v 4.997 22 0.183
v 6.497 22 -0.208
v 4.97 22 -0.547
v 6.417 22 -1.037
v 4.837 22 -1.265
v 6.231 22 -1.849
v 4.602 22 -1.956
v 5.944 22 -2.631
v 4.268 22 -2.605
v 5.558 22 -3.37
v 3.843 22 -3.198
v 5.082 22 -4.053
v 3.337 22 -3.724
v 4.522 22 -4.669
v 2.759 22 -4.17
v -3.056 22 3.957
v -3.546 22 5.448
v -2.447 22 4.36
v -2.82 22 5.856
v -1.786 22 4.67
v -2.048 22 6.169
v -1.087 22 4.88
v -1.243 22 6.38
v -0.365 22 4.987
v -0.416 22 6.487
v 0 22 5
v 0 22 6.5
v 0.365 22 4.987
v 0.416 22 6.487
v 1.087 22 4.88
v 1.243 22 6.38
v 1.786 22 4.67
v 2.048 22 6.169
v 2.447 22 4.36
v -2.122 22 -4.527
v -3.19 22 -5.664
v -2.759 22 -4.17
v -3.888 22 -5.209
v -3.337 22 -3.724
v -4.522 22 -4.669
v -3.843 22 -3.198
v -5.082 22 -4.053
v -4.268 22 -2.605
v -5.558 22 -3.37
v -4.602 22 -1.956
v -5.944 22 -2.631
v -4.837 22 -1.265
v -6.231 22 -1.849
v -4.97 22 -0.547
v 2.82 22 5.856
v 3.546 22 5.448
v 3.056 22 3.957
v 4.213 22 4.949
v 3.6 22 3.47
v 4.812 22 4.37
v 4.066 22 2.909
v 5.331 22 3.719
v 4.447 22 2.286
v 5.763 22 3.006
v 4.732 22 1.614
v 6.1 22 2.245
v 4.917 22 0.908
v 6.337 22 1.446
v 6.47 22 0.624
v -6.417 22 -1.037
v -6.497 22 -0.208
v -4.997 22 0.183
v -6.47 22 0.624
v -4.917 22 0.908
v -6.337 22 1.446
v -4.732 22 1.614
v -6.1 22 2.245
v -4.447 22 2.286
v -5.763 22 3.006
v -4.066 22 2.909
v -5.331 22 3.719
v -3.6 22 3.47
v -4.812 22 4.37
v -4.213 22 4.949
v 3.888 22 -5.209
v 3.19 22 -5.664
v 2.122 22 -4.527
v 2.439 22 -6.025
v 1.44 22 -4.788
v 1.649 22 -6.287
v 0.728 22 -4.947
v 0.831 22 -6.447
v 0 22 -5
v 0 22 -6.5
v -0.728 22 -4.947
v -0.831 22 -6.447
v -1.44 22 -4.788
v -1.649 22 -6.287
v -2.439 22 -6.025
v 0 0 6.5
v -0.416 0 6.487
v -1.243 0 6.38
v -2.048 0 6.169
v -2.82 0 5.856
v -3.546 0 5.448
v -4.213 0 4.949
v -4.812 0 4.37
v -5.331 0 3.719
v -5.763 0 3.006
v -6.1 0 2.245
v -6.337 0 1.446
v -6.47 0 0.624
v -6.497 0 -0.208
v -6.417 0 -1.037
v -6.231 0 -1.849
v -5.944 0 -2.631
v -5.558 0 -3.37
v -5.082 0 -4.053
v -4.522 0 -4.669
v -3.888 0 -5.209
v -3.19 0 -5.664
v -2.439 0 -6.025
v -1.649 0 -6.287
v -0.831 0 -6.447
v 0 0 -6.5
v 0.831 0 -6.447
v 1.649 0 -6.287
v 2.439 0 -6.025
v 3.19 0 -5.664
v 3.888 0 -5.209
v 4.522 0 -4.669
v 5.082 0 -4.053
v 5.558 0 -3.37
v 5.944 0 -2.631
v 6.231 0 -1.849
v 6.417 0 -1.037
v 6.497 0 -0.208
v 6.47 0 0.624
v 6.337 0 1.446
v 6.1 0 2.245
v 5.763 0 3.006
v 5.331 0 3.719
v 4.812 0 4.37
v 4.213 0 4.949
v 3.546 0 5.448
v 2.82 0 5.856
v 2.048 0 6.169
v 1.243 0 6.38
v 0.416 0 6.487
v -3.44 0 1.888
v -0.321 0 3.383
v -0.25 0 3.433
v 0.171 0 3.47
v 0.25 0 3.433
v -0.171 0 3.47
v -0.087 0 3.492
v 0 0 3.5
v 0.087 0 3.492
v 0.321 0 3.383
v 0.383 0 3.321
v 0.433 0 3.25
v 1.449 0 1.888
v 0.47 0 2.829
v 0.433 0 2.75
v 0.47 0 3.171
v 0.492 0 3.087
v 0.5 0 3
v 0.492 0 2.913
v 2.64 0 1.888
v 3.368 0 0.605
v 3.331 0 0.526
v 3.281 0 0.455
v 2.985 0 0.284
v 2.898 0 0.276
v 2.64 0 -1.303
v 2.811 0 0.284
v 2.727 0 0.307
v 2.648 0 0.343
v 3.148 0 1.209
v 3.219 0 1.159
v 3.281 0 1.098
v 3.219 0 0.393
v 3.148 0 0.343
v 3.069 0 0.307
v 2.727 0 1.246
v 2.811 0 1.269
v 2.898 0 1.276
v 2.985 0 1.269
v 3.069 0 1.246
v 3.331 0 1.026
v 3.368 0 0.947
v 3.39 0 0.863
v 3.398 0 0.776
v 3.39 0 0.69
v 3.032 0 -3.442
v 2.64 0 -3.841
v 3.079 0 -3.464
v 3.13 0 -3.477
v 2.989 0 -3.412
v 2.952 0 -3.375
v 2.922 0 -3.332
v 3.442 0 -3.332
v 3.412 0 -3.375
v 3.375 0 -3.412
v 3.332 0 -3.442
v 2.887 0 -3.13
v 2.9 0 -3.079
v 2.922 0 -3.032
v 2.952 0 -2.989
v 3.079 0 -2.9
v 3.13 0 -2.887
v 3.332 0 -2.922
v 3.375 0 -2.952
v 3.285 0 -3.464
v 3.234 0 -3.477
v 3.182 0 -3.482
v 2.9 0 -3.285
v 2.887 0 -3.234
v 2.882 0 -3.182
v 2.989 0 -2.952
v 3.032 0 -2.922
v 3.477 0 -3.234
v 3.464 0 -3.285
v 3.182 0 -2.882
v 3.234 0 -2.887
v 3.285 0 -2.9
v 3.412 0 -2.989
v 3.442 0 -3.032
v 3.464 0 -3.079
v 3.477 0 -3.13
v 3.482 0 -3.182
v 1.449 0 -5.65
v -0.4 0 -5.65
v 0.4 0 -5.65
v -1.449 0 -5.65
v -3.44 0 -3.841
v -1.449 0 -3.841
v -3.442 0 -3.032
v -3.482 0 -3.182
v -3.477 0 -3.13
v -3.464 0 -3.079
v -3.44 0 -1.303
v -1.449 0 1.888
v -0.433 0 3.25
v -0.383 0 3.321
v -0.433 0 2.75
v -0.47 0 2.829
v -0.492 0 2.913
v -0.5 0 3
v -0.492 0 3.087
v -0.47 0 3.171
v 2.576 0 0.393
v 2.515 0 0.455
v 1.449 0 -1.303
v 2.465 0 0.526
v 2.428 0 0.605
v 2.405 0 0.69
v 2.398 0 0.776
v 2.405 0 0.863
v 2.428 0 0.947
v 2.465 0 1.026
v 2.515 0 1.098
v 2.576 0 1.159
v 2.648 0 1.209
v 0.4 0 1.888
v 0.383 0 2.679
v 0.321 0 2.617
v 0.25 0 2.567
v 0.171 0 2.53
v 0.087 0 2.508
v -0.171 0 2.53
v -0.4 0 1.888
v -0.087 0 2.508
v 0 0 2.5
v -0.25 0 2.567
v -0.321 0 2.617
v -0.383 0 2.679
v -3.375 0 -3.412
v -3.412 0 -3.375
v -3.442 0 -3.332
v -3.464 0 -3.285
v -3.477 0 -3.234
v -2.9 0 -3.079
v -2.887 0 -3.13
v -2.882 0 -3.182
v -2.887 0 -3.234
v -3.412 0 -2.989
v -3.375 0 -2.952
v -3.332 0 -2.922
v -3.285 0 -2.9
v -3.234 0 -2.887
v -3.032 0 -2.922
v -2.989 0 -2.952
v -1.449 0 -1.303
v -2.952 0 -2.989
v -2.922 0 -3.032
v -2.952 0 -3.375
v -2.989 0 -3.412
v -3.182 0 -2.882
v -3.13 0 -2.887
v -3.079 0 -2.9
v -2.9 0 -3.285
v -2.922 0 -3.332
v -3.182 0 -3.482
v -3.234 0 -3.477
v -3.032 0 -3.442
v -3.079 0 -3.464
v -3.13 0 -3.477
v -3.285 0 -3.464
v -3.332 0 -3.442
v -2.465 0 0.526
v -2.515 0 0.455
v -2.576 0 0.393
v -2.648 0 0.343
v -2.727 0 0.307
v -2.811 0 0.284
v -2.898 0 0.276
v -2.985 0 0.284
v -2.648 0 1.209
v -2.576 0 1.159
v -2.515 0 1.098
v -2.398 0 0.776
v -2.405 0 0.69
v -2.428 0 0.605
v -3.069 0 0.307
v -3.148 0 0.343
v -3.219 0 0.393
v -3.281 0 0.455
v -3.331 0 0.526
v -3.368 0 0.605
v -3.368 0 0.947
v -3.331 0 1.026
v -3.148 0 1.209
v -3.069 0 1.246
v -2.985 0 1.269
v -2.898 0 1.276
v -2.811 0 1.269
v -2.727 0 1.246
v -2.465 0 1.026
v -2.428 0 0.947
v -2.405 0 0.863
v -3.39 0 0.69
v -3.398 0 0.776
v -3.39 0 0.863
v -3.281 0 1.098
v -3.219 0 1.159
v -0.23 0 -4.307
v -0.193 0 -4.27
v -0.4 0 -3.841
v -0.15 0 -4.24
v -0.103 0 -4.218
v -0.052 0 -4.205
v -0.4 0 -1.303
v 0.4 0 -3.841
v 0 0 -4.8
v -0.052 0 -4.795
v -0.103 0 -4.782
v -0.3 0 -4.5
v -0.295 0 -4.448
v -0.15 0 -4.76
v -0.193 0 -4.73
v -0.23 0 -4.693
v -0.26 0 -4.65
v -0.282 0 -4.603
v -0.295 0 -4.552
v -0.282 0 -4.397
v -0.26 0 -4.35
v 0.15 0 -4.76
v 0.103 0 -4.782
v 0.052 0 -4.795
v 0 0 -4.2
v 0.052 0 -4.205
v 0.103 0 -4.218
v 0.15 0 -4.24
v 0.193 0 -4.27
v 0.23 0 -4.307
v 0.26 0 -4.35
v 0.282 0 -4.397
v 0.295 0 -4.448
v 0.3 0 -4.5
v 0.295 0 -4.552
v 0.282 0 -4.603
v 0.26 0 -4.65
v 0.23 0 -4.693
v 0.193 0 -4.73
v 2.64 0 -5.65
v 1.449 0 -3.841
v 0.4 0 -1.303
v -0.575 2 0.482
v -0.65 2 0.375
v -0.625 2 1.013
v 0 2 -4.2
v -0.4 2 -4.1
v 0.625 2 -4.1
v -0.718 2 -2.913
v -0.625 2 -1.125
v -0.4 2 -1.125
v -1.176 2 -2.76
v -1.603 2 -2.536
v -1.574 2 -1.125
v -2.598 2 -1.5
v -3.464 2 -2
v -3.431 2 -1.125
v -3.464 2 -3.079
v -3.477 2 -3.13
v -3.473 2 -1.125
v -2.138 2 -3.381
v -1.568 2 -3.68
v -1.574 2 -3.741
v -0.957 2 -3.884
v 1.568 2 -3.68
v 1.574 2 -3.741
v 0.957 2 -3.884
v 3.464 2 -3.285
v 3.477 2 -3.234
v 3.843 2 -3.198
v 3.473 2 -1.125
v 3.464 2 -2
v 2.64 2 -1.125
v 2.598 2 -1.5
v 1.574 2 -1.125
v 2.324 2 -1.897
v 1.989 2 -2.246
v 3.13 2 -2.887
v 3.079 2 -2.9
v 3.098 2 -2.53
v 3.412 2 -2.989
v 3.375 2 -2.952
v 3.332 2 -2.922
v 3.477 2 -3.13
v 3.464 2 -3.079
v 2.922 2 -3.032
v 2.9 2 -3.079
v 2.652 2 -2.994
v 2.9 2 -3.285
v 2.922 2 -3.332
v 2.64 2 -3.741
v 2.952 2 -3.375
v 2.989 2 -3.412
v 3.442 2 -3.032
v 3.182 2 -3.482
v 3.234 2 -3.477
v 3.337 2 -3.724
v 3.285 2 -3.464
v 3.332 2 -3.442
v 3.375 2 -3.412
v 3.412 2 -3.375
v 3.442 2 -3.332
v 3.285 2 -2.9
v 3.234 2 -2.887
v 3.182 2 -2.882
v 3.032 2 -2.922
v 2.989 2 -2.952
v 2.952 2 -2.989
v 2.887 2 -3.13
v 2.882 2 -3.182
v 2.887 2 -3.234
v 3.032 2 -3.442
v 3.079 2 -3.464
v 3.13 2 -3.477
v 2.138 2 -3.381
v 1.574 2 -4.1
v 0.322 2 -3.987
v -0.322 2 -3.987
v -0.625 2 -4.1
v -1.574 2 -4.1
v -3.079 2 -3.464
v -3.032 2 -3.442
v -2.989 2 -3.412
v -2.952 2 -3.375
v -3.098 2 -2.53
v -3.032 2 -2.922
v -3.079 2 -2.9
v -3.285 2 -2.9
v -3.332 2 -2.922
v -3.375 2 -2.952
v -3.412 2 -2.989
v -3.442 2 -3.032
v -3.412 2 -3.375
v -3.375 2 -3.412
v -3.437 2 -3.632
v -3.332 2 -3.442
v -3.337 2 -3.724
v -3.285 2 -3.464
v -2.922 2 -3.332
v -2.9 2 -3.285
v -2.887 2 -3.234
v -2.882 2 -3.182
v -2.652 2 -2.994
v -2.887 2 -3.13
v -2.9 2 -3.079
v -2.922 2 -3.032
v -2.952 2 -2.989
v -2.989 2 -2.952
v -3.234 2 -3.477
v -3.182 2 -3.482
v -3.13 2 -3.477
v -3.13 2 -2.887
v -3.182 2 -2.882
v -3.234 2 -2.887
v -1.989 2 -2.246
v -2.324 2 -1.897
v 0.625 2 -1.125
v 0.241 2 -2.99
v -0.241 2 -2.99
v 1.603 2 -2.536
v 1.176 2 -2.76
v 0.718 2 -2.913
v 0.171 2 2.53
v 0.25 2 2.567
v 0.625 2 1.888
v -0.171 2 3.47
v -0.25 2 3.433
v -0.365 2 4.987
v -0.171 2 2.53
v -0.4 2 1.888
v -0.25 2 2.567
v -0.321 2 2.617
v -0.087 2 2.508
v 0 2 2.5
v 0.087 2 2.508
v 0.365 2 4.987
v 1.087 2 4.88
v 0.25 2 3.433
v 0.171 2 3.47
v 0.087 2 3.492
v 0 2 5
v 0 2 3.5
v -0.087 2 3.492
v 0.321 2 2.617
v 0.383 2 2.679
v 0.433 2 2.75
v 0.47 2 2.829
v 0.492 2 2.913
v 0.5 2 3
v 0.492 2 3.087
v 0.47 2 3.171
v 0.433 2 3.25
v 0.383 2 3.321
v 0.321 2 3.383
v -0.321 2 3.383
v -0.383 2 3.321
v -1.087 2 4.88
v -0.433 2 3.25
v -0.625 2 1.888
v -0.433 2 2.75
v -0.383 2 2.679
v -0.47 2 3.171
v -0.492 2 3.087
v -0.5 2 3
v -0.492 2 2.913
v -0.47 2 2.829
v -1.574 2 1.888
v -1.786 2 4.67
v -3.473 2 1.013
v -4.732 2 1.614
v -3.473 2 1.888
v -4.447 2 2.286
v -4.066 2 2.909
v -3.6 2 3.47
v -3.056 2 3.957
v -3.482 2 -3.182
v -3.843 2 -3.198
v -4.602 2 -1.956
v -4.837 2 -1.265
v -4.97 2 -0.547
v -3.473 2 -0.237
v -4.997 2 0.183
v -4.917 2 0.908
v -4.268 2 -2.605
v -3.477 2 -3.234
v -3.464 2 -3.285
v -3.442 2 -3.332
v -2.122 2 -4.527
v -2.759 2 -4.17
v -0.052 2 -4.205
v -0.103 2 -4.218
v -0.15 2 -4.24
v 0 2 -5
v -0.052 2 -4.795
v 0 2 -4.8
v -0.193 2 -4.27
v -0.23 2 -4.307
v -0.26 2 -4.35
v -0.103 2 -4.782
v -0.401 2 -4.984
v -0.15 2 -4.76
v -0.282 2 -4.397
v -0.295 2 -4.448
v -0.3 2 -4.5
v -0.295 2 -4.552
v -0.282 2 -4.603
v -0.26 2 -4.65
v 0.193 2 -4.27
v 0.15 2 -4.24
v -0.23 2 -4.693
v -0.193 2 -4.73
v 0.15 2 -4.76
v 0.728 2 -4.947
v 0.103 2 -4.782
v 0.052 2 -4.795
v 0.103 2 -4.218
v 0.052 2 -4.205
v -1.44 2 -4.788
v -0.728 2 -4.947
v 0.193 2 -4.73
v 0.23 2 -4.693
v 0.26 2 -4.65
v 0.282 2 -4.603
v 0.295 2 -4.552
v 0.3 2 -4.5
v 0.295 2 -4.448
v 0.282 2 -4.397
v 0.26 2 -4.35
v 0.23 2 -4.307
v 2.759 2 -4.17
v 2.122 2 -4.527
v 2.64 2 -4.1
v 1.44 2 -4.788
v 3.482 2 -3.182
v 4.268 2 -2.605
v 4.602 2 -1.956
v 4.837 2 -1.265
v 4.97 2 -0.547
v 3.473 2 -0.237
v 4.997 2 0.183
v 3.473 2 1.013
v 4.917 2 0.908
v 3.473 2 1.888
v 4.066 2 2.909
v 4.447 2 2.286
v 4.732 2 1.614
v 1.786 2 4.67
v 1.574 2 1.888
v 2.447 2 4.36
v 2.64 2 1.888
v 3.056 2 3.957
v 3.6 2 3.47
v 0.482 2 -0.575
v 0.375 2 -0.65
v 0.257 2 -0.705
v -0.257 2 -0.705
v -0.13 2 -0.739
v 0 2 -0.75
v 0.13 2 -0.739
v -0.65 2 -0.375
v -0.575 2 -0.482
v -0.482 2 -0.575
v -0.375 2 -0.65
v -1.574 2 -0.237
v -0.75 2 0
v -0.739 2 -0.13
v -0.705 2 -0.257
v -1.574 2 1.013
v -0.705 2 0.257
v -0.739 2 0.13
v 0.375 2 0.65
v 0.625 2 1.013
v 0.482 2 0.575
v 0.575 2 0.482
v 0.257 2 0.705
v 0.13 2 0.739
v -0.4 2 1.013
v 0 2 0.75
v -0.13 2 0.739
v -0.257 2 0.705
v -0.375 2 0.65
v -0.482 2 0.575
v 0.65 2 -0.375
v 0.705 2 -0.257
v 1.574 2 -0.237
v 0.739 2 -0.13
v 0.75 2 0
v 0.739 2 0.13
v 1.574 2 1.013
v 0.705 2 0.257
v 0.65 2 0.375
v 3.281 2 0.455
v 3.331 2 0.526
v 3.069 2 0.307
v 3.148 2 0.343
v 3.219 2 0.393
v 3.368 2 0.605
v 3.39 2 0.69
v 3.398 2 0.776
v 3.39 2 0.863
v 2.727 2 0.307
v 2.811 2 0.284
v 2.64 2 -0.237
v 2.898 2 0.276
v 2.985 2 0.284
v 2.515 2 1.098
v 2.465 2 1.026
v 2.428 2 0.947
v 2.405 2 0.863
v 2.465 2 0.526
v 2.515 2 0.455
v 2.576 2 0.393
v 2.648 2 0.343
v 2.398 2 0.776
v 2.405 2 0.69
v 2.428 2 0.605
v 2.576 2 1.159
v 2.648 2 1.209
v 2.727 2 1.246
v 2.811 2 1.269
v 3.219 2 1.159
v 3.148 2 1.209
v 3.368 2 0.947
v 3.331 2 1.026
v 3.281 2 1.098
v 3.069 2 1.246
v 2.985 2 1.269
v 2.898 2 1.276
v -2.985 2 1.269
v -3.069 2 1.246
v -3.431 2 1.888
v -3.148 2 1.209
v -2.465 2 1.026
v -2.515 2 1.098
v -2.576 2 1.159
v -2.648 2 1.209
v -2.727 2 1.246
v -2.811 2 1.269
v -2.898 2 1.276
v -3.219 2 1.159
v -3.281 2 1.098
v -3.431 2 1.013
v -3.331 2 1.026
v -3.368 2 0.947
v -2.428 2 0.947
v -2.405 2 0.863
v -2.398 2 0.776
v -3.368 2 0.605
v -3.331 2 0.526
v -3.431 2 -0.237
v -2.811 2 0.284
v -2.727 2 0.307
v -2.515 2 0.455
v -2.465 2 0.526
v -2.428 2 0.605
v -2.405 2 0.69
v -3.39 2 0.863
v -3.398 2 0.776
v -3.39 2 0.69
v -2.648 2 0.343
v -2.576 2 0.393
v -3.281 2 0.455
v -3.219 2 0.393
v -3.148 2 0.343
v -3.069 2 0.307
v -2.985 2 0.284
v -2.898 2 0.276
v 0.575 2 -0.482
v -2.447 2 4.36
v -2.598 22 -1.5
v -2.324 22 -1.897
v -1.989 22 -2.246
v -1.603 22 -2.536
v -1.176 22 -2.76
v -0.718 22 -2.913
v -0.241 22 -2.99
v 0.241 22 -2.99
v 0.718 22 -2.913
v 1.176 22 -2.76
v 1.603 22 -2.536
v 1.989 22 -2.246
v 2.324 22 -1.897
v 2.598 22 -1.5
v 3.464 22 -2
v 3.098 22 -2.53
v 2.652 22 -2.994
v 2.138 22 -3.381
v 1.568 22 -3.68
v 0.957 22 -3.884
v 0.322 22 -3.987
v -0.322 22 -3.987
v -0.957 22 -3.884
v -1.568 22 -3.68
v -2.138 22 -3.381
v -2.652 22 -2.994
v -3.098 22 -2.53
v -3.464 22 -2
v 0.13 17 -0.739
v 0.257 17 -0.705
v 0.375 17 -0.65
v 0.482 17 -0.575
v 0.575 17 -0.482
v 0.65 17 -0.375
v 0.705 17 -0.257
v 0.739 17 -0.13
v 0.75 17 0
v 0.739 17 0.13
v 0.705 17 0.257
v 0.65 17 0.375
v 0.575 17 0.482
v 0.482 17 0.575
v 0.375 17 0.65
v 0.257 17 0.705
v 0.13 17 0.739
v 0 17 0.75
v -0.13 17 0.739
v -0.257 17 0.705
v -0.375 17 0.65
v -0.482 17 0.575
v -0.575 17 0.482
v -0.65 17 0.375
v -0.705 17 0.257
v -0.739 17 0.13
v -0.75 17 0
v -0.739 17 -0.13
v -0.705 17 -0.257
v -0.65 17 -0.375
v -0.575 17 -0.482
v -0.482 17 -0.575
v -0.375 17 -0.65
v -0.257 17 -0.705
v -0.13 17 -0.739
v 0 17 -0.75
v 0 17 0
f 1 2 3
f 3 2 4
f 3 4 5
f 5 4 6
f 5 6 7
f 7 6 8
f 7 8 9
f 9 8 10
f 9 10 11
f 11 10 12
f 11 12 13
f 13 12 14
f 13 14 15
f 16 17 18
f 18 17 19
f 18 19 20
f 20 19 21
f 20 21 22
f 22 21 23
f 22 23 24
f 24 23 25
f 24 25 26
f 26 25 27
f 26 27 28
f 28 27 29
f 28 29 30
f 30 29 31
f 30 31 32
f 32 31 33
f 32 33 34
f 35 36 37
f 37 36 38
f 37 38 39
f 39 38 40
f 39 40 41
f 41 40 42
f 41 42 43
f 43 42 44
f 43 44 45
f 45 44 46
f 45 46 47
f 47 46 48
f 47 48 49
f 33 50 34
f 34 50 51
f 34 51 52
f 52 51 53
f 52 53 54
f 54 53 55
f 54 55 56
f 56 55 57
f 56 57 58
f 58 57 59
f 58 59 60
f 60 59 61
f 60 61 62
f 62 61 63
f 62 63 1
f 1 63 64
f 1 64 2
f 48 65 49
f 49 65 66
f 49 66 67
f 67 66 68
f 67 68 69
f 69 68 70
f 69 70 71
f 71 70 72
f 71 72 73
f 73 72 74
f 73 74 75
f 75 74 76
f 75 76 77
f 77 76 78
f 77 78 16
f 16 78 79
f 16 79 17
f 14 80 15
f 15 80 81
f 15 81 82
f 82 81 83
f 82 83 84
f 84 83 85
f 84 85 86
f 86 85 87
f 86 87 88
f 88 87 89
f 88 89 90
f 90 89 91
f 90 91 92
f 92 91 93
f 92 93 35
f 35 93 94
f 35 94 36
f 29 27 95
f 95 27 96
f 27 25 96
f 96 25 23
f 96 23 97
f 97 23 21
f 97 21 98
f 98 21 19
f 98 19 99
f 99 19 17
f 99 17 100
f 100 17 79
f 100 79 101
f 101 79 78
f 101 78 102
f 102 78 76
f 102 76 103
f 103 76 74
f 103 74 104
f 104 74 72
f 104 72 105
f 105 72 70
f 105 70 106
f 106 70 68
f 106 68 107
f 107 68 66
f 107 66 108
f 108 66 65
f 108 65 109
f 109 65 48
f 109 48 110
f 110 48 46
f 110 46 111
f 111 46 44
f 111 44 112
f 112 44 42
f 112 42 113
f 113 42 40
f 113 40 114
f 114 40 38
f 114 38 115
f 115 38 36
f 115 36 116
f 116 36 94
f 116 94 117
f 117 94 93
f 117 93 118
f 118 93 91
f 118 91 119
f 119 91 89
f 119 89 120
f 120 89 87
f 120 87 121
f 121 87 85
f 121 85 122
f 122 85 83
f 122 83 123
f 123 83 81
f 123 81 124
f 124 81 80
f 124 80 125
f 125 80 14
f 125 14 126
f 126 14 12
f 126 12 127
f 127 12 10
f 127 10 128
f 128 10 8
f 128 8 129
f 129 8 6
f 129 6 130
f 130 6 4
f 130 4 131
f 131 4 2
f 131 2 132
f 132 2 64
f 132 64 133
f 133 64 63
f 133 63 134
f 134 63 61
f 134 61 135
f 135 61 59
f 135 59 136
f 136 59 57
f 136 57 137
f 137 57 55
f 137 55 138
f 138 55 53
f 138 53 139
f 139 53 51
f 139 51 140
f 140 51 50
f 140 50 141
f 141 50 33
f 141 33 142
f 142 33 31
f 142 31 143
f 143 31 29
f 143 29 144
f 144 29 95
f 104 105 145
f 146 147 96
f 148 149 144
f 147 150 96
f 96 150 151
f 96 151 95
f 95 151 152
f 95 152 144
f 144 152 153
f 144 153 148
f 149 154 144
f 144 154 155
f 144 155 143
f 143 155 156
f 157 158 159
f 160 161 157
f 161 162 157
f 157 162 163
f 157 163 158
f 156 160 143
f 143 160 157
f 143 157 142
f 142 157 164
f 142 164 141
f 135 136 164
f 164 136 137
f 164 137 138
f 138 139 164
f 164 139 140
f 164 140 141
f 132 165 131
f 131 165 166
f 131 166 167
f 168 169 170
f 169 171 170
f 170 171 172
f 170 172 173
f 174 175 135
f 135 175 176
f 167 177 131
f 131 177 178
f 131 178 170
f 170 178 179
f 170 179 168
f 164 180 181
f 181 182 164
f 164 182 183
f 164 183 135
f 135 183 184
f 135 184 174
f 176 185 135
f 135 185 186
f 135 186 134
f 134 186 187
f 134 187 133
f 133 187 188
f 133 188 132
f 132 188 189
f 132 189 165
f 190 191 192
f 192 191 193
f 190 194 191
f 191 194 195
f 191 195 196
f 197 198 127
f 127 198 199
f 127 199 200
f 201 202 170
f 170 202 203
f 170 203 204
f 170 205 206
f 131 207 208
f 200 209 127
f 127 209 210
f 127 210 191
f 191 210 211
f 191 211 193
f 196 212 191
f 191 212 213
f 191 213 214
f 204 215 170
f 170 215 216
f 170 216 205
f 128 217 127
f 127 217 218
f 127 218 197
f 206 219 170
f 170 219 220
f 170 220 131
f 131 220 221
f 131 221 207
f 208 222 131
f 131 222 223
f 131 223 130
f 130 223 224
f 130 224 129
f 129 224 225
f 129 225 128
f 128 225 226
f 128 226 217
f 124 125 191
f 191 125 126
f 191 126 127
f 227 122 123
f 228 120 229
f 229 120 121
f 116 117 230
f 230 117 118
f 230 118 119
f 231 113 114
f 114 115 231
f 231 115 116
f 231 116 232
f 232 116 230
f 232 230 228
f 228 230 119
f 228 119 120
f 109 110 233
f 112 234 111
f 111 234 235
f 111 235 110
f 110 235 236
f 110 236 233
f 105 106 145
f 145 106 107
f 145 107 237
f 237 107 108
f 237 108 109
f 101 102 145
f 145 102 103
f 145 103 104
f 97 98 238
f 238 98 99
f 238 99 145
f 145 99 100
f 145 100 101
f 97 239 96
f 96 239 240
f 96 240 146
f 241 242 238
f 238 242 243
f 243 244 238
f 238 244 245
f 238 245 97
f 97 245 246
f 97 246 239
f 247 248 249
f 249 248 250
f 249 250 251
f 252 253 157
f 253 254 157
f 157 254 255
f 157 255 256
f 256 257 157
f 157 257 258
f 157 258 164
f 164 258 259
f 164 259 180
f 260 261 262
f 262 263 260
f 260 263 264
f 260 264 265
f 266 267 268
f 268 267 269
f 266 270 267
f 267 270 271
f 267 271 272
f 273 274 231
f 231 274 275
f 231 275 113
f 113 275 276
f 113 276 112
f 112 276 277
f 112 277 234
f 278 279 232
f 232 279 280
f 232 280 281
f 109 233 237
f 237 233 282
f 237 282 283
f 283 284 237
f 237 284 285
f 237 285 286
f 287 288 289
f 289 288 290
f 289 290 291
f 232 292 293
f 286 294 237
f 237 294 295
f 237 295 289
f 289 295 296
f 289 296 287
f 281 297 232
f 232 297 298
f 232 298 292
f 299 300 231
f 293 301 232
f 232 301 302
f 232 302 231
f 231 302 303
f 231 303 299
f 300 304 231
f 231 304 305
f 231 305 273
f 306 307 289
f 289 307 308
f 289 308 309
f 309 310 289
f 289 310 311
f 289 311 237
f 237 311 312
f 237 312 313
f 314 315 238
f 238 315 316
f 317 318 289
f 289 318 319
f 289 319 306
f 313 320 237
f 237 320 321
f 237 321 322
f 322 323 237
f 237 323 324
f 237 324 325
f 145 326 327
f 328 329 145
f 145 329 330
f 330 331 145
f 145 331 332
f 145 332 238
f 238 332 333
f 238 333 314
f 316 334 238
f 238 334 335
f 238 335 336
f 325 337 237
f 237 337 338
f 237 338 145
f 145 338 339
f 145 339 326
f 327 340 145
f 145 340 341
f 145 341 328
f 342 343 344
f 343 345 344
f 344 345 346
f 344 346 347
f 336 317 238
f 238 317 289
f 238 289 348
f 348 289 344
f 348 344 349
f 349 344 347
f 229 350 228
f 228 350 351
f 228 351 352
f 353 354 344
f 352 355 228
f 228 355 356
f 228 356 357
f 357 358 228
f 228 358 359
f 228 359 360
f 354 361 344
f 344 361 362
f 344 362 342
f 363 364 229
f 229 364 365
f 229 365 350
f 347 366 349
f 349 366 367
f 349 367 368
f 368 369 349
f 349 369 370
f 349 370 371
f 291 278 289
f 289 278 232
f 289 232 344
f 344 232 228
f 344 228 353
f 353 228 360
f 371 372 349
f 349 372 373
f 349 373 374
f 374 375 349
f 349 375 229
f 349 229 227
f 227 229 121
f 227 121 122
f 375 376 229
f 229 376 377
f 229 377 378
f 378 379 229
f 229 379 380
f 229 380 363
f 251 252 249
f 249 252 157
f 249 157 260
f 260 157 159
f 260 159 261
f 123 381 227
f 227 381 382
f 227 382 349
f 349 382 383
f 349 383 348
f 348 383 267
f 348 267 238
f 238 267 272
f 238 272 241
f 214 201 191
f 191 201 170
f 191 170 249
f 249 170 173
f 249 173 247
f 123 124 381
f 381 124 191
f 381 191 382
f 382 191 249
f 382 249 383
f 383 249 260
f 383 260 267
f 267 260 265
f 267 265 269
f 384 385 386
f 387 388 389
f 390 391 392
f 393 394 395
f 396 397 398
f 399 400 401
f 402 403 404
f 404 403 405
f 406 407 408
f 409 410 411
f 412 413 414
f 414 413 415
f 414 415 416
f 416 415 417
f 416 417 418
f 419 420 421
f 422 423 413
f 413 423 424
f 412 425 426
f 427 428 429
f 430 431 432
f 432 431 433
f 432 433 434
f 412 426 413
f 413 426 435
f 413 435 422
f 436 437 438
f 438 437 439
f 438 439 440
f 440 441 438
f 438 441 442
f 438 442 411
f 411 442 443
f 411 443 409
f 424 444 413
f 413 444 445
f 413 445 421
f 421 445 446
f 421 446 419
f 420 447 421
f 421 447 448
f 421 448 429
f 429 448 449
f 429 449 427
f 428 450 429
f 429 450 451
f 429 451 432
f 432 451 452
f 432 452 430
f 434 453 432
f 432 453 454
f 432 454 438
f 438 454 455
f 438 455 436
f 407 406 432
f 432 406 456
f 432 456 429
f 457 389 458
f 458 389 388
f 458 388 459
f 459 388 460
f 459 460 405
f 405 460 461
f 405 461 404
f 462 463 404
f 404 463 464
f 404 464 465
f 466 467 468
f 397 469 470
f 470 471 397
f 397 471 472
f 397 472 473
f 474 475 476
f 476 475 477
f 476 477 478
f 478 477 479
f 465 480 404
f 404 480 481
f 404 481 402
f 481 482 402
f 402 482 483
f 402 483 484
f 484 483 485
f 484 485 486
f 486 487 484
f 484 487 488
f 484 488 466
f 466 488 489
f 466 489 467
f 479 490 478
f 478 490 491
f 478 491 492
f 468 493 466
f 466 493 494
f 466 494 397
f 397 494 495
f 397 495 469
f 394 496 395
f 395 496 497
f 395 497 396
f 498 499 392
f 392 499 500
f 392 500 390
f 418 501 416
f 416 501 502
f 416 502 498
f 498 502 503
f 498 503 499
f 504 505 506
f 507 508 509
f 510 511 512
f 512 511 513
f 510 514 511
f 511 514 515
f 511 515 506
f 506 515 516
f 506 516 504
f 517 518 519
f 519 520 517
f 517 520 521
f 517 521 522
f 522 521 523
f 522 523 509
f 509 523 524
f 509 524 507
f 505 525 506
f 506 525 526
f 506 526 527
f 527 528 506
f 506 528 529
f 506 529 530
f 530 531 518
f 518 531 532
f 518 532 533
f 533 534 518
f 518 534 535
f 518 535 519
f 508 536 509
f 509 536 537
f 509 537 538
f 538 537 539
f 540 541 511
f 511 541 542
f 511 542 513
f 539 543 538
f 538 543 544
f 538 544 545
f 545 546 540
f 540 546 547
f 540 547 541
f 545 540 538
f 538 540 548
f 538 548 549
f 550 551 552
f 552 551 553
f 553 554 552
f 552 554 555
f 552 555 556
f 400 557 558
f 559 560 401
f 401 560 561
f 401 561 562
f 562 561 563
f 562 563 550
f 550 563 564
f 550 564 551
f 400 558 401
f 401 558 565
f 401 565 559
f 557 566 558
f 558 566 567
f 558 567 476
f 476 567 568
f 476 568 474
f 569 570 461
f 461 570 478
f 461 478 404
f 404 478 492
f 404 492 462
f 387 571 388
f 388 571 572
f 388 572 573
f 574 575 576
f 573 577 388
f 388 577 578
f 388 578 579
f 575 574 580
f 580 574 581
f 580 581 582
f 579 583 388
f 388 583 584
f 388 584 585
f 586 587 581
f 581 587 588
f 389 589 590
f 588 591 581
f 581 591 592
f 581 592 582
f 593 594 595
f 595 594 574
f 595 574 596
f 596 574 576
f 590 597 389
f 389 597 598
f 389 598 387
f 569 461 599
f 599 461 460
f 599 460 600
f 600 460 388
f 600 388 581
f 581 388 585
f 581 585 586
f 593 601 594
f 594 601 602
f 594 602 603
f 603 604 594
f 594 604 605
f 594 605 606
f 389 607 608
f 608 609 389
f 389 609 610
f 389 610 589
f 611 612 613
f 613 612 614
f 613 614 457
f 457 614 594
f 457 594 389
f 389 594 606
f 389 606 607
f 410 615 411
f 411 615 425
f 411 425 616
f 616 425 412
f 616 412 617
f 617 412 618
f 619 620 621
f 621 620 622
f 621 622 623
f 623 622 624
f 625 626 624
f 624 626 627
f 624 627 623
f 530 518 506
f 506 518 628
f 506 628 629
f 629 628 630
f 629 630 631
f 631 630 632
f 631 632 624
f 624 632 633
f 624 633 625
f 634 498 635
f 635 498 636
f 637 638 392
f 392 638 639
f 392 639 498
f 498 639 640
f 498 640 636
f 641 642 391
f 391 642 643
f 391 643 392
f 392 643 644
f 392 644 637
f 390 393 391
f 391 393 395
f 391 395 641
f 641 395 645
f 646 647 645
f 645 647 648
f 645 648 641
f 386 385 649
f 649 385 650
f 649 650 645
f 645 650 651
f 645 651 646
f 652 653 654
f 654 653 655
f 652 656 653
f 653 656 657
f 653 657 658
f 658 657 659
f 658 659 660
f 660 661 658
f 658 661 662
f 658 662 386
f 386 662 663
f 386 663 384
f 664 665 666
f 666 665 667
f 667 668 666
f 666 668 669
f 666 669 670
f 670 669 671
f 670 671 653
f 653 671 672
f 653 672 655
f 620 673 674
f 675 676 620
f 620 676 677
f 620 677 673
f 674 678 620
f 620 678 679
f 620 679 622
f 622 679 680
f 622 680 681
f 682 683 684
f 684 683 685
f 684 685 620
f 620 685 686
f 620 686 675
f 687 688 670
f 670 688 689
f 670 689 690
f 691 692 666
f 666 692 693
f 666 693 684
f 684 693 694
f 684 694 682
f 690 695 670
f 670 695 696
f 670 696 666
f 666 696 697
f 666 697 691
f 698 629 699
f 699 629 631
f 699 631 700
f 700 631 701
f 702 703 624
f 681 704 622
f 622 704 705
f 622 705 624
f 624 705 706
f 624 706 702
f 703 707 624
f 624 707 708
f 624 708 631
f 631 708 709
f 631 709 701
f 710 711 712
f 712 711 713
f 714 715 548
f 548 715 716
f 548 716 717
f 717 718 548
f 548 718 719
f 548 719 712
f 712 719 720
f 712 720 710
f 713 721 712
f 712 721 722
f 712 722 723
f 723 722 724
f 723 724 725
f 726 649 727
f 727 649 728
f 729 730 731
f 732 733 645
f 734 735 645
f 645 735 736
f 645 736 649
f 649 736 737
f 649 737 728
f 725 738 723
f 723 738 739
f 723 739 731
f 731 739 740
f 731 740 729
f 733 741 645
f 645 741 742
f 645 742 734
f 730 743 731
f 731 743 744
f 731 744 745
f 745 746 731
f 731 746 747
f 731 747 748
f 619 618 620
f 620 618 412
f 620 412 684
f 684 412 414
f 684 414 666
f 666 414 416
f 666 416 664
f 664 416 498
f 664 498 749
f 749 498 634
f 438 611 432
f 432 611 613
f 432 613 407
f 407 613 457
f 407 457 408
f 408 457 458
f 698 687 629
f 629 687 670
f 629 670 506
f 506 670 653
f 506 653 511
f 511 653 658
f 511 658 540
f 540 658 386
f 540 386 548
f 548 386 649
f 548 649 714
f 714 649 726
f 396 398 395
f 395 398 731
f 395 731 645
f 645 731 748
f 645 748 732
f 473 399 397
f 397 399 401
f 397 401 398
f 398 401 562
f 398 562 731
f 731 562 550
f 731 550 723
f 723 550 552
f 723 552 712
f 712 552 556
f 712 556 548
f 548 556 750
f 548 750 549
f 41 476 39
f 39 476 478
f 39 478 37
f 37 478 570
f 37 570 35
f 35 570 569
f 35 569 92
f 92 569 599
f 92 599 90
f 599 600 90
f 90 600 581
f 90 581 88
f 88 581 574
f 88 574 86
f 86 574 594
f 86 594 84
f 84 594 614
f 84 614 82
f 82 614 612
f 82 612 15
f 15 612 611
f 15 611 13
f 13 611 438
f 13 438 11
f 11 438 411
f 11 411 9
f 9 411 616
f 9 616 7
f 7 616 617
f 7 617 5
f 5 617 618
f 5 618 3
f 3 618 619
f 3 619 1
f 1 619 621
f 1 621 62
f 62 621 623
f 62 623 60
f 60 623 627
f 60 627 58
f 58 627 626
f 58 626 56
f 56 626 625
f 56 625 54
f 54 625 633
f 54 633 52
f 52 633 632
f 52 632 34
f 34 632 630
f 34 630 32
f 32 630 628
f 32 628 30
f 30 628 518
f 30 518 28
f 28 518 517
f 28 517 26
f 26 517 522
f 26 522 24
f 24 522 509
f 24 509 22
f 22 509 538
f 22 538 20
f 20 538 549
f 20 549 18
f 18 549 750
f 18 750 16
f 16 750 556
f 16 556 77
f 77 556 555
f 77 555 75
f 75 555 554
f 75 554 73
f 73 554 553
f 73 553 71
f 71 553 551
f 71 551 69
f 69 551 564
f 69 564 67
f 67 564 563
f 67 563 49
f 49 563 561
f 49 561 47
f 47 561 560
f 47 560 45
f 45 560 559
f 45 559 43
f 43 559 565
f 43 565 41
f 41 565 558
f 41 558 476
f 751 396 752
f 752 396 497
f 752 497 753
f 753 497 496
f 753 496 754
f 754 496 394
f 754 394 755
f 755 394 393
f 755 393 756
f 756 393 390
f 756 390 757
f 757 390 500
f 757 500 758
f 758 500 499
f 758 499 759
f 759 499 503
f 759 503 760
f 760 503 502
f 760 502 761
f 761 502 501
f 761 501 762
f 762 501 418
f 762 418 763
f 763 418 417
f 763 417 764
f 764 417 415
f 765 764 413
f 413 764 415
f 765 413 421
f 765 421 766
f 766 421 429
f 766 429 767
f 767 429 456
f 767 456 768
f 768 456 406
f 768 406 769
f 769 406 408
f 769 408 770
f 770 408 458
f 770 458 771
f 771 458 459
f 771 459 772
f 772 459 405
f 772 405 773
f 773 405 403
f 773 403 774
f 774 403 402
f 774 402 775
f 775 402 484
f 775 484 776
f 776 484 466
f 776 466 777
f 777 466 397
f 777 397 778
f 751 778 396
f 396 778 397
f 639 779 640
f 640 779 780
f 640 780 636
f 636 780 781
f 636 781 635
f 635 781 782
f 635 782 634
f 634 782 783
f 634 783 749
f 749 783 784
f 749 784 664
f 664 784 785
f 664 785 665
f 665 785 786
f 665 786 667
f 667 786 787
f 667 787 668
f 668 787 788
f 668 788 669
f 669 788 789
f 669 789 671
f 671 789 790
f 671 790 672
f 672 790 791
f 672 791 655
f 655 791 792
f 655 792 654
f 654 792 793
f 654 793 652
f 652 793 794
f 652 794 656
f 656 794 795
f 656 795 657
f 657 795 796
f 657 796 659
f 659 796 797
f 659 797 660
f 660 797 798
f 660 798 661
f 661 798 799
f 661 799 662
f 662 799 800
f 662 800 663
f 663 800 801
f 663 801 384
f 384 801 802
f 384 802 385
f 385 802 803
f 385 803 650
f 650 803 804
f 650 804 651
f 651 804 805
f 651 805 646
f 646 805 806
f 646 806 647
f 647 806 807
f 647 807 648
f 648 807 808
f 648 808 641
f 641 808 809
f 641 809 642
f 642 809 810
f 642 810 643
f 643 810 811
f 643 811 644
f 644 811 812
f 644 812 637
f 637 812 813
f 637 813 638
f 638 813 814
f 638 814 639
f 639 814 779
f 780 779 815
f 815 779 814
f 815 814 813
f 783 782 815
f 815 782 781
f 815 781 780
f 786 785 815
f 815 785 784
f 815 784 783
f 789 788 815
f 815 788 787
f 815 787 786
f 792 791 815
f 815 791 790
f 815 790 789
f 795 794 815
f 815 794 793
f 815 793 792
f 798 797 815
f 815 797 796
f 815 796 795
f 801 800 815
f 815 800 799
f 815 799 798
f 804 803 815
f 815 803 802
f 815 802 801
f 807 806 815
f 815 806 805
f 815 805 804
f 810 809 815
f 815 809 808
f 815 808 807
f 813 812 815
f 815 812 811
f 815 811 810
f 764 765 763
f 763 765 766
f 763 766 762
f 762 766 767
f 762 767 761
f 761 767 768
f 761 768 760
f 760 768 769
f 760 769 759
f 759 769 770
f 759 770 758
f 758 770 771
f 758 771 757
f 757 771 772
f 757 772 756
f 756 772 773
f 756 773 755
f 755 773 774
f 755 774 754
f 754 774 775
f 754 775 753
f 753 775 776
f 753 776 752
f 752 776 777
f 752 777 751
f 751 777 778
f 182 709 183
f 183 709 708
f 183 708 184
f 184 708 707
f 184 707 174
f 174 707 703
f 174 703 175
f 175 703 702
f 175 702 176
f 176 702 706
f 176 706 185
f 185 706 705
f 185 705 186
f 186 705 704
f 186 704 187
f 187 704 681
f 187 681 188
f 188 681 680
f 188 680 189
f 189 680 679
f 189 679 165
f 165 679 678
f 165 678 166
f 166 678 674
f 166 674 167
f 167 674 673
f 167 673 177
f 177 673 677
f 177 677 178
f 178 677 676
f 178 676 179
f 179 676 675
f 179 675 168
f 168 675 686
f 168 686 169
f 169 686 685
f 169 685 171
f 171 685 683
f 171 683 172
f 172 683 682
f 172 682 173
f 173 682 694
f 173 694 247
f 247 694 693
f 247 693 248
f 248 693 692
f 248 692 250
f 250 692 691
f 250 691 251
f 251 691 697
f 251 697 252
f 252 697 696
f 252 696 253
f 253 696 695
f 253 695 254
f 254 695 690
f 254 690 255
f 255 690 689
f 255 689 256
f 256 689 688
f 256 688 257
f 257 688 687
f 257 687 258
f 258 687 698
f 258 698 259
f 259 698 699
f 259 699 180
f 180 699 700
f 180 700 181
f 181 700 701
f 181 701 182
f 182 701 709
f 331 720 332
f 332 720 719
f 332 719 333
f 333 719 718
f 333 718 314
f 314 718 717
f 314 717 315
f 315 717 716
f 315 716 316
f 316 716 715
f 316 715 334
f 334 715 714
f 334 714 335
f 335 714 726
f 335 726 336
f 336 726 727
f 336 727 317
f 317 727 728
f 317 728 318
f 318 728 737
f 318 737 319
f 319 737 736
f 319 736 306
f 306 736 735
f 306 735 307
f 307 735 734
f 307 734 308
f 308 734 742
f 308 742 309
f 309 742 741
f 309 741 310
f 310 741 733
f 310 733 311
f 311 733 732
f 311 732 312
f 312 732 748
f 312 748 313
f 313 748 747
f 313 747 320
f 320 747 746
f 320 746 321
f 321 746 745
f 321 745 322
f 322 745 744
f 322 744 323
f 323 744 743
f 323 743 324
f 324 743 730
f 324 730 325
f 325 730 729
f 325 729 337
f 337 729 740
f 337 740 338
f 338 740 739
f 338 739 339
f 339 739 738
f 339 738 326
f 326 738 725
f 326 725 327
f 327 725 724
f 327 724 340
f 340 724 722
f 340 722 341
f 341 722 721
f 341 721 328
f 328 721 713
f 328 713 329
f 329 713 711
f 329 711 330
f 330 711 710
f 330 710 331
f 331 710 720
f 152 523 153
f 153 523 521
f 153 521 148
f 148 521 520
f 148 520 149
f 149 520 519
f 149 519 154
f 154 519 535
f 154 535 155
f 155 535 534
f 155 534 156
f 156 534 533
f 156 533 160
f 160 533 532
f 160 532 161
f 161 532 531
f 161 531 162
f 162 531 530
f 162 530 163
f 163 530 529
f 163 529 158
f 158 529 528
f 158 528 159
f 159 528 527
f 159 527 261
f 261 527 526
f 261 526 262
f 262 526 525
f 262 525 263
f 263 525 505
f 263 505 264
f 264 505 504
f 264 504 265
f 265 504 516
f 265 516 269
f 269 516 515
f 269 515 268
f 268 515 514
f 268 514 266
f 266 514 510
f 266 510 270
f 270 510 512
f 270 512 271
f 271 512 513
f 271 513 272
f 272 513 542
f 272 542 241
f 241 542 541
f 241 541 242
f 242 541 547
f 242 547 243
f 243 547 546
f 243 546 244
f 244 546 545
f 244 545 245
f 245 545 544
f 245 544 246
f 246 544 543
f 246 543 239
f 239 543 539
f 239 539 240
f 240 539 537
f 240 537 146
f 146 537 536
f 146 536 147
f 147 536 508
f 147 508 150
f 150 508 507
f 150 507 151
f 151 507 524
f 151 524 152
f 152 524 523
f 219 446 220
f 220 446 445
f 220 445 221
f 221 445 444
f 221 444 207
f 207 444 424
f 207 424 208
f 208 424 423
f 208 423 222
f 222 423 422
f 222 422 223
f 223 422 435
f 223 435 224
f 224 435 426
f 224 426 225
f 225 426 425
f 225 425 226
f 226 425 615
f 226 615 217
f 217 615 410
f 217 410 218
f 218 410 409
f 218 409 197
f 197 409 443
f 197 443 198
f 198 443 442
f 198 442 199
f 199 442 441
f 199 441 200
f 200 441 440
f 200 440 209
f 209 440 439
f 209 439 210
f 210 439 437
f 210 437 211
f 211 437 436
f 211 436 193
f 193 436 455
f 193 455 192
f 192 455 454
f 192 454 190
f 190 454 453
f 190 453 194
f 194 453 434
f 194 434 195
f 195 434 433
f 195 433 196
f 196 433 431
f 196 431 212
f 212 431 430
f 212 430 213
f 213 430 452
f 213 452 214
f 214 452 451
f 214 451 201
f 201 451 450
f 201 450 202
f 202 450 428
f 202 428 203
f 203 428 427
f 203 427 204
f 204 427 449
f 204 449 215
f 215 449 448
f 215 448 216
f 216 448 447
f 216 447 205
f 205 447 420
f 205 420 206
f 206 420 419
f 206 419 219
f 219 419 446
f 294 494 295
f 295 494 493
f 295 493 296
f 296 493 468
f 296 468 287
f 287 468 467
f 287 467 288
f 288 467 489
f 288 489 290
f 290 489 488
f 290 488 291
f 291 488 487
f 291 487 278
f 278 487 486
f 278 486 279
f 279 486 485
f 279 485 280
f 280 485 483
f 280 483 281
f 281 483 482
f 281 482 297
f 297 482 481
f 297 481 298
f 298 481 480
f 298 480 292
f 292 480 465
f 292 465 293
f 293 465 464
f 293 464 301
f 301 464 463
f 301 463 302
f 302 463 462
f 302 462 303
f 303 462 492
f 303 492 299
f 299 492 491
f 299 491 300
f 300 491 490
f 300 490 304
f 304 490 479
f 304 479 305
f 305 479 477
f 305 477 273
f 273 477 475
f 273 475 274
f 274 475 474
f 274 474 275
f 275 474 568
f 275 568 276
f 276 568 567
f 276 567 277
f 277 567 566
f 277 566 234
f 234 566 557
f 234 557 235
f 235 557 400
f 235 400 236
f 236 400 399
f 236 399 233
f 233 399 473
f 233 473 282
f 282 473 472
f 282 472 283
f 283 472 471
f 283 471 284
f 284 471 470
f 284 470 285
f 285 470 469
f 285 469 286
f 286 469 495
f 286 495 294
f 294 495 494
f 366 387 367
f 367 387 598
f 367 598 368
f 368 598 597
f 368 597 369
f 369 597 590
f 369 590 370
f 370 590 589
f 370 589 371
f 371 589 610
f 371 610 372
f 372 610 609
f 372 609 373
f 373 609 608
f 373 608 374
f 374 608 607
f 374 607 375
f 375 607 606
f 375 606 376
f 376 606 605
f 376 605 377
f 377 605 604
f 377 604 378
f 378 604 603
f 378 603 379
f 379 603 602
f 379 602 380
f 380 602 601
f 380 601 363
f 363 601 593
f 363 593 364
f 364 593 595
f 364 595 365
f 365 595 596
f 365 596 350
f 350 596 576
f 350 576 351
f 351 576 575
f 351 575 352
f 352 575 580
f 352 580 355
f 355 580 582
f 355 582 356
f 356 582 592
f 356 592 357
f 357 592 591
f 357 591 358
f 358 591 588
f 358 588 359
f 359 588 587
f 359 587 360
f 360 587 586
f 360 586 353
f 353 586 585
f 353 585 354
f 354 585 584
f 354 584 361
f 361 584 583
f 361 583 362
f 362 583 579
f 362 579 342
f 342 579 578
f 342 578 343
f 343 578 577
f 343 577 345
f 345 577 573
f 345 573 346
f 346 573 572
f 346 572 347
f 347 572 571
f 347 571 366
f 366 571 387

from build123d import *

# Parameters (mm, degrees)
SKETCH1_R           = 6.5
BOSS_EXTRUDE1_DEPTH = 22
CAVITY1_START       = 2
CAVITY1_OUTLINE_R   = 5
CAVITY1_OUTLINE_R_2 = 0.75
CAVITY1_DEPTH       = 20
CAVITY1_START_2     = 17
CAVITY1_2_OUTLINE_R = 0.75
CAVITY1_2_DEPTH     = 5
SKETCH2_R           = 0.5
CUT_EXTRUDE1_DEPTH  = 23.011360703
SKETCH3_R           = 0.3
CUT_EXTRUDE2_DEPTH  = 23.011360703


# Read off the part's stored shape, not the designer's step: Cavity1
with BuildPart() as part:
    # Sketch1 → Boss-Extrude1 (new body)
    with BuildSketch(Plane(origin=(0, 0, 0), x_dir=(1, 0, 0), z_dir=(0, 1, 0))):
        with Locations(Location((0, 0, 0), (0, 0, 270))):
            Circle(SKETCH1_R)
    extrude(amount=BOSS_EXTRUDE1_DEPTH)

    # Cavity1 outline → Cavity1 (cut)
    with BuildSketch(Plane(origin=(0, 0, 0), x_dir=(1, 0, 0), z_dir=(0, 1, 0)).offset(CAVITY1_START)):
        Circle(CAVITY1_OUTLINE_R)
        Circle(CAVITY1_OUTLINE_R_2, mode=Mode.SUBTRACT)
        with BuildLine():
            ThreePointArc((2.598076211, 1.5), (0, 3), (-2.598076211, 1.5))
            Line((-2.598076211, 1.5), (-3.464101615, 2))
            ThreePointArc((-3.464101615, 2), (0, 4), (3.464101615, 2))
            Line((3.464101615, 2), (2.598076211, 1.5))
        make_face(mode=Mode.SUBTRACT)
    extrude(amount=CAVITY1_DEPTH, mode=Mode.SUBTRACT)

    # Cavity1 2 outline → Cavity1 2 (cut)
    with BuildSketch(Plane(origin=(0, 0, 0), x_dir=(1, 0, 0), z_dir=(0, 1, 0)).offset(CAVITY1_START_2)):
        Circle(CAVITY1_2_OUTLINE_R)
    extrude(amount=CAVITY1_2_DEPTH, mode=Mode.SUBTRACT)

    # Sketch2 → Cut-Extrude1 (cut, through all)
    with BuildSketch(Plane(origin=(0, 2, 0), x_dir=(1, 0, 0), z_dir=(0, 1, 0))):
        with Locations(Location((0, -3, 0), (0, 0, 270))):
            Circle(SKETCH2_R)
        with Locations(Location((-2.897777479, -0.776457135, 0), (0, 0, 270))):
            Circle(SKETCH2_R)
        with Locations(Location((2.897777479, -0.776457135, 0), (0, 0, 90))):
            Circle(SKETCH2_R)
    extrude(amount=-CUT_EXTRUDE1_DEPTH, mode=Mode.SUBTRACT)

    # Sketch3 → Cut-Extrude2 (cut, through all)
    with BuildSketch(Plane(origin=(0, 2, 0), x_dir=(1, 0, 0), z_dir=(0, 1, 0))):
        with Locations(Location((0, 4.5, 0), (0, 0, 270))):
            Circle(SKETCH3_R)
        with Locations(Location((3.181980515, 3.181980515, 0), (0, 0, 270))):
            Circle(SKETCH3_R)
        with Locations(Location((-3.181980515, 3.181980515, 0), (0, 0, 90))):
            Circle(SKETCH3_R)
    extrude(amount=-CUT_EXTRUDE2_DEPTH, mode=Mode.SUBTRACT)


solid = part.part
